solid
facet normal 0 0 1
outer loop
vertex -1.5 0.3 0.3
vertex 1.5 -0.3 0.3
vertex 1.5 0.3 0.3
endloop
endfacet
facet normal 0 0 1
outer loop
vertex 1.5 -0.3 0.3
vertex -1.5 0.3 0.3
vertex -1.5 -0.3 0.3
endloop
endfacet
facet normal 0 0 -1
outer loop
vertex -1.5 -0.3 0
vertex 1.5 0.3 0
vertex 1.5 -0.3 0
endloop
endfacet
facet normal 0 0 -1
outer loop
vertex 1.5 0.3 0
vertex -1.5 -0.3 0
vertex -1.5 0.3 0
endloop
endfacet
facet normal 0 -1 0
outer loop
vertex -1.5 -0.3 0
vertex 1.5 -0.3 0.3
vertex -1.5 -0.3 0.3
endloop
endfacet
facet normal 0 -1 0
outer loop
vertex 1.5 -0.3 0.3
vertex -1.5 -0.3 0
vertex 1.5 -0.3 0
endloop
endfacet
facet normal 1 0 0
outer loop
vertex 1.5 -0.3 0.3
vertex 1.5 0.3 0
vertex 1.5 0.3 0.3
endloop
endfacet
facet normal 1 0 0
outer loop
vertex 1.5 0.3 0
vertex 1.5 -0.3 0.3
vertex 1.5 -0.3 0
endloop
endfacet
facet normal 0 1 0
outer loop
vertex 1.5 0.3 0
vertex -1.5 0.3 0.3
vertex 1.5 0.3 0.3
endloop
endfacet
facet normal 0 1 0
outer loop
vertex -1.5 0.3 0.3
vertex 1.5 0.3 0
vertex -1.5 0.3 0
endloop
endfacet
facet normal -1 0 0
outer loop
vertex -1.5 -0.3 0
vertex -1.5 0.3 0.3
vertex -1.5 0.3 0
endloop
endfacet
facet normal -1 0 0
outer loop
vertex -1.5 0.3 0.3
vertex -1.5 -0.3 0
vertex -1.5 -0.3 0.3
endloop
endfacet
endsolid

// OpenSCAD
// Rectangular Prism for Stacks of Shapes
// by Slashee the Cow
// and yes I know it's just a cube scaled unequally
color("DeepSkyBlue")
translate([-1.5, -0.3, 0])
cube([3,0.6,0.3]);
